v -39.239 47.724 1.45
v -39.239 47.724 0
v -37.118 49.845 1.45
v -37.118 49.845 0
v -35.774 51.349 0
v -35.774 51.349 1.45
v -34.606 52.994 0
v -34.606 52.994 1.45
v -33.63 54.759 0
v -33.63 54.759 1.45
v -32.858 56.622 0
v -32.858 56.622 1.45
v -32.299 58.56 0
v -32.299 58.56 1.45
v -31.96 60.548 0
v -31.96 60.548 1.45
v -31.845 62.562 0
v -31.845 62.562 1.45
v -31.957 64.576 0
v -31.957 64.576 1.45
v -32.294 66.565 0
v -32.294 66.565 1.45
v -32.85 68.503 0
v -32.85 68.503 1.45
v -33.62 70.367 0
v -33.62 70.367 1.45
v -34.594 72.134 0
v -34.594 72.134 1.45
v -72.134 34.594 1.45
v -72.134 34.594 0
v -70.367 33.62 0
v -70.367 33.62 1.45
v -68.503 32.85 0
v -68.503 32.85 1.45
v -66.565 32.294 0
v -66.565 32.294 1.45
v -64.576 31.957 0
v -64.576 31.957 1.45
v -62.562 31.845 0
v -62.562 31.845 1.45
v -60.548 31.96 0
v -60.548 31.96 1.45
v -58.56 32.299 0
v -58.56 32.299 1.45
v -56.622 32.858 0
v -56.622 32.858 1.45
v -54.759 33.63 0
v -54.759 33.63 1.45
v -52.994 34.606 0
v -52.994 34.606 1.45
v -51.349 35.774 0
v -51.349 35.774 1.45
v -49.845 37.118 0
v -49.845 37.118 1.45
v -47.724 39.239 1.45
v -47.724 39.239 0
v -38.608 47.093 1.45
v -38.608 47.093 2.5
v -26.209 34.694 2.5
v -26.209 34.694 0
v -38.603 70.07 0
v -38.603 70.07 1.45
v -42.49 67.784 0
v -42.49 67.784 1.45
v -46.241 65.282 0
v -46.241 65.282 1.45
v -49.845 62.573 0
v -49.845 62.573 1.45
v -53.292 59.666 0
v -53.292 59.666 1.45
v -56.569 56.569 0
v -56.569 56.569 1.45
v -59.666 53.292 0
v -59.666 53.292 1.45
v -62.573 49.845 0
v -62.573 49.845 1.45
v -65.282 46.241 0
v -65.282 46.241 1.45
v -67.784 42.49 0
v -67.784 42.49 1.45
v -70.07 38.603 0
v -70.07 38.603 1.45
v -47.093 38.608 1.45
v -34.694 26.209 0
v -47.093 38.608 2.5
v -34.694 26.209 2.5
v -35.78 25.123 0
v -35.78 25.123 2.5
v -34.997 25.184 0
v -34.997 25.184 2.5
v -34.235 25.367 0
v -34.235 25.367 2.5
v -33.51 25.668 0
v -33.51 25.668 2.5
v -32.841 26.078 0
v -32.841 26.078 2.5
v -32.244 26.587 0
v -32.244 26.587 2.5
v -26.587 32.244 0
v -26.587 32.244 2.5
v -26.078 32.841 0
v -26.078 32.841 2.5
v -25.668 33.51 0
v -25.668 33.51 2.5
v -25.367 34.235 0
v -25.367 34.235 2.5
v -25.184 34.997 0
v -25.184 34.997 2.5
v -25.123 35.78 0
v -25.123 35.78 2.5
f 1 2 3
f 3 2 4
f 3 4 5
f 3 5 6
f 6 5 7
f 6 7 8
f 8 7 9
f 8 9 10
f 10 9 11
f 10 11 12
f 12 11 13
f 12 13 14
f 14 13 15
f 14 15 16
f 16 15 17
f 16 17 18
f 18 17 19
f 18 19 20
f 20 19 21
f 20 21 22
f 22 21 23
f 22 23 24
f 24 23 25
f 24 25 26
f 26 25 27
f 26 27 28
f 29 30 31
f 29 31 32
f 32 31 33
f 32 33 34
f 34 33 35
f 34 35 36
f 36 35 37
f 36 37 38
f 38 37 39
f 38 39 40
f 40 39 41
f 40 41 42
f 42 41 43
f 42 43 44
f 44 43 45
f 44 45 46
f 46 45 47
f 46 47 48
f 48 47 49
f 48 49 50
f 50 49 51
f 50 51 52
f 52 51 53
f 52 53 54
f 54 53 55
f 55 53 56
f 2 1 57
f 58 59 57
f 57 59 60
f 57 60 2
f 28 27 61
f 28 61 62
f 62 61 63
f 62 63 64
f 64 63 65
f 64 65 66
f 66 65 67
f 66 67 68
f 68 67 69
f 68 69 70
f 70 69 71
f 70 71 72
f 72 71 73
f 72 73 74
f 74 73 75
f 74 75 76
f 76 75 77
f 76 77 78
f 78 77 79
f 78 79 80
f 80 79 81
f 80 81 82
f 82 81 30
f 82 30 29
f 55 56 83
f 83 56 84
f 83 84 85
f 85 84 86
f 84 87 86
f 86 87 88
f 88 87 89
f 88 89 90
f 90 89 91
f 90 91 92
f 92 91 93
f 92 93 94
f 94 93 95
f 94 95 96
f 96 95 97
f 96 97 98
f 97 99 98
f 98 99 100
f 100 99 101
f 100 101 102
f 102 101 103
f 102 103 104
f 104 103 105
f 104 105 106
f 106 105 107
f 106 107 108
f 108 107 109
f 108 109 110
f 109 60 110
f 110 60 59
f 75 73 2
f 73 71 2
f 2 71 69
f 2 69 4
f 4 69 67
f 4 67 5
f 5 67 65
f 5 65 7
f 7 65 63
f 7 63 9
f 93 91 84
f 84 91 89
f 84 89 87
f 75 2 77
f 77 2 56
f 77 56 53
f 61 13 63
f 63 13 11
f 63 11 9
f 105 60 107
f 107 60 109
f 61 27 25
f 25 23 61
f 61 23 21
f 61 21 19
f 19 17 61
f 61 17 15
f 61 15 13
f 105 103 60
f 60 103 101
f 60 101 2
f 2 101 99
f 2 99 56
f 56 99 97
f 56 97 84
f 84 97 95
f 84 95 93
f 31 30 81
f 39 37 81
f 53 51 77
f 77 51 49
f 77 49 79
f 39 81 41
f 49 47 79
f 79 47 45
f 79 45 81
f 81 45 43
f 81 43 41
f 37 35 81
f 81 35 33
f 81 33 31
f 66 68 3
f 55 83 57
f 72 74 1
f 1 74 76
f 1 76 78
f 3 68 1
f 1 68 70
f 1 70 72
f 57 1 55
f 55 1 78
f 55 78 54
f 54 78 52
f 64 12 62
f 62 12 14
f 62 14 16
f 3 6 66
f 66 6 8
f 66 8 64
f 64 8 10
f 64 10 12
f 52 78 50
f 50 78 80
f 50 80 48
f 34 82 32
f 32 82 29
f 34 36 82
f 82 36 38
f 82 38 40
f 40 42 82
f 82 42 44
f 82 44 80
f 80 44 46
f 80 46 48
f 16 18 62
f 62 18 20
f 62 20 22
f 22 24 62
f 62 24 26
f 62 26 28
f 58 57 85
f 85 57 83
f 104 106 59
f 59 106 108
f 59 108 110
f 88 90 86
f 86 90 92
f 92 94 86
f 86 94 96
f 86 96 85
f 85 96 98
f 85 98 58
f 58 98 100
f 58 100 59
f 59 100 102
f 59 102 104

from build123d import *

# Parameters (mm, degrees)
BOSS_EXTRUDE2_DEPTH = 5
CUT_EXTRUDE1_START  = 5
SKETCH3_W           = 19.008841094
SKETCH3_H           = 2.1
SKETCH3_W_2         = 12
SKETCH3_W_3         = 1.535533906
SKETCH3_W_4         = 1.464466094
SKETCH3_W_5         = 17.544375
CUT_EXTRUDE1_DEPTH  = 16
CUT_EXTRUDE2_DEPTH  = 52
SKETCH5_W           = 1.05
SKETCH5_H           = 46.149322856
CUT_EXTRUDE3_DEPTH  = 10


with BuildPart() as part:
    # Sketch1 → Boss-Extrude2 (new body)
    with BuildSketch(Plane.XY):
        Polygon((-39.238867065, 47.72414844), (-47.72414844, 39.238867065), (-34.69381669, 26.208535316), (-26.208535316, 34.69381669), align=None)
        with BuildLine():
            ThreePointArc((-49.845468783, 62.573390845), (-56.568542495, 56.568542495), (-62.573390845, 49.845468783))
            Line((-62.573390845, 49.845468783), (-49.845468783, 37.117546722))
            Line((-49.845468783, 37.117546722), (-47.72414844, 39.238867065))
            Line((-47.72414844, 39.238867065), (-39.238867065, 47.72414844))
            Line((-39.238867065, 47.72414844), (-37.117546722, 49.845468783))
            Line((-37.117546722, 49.845468783), (-49.845468783, 62.573390845))
        make_face()
        with BuildLine():
            ThreePointArc((-34.594119865, 72.133534994), (-42.489529555, 67.783772971), (-49.845468783, 62.573390845))
            Line((-49.845468783, 62.573390845), (-37.117546722, 49.845468783))
            ThreePointArc((-37.117546722, 49.845468783), (-31.959737739, 60.548390845), (-34.594119865, 72.133534994))
        make_face()
        with BuildLine():
            ThreePointArc((-62.573390845, 49.845468783), (-67.783772971, 42.489529555), (-72.133534994, 34.594119865))
            ThreePointArc((-72.133534994, 34.594119865), (-60.548390845, 31.959737739), (-49.845468783, 37.117546722))
            Line((-49.845468783, 37.117546722), (-62.573390845, 49.845468783))
        make_face()
        with BuildLine():
            Line((-34.69381669, 26.208535316), (-35.779603128, 25.122748879))
            ThreePointArc((-35.779603128, 25.122748879), (-33.866185966, 25.503351216), (-32.244069222, 26.587214973))
            Line((-32.244069222, 26.587214973), (-26.587214973, 32.244069222))
            ThreePointArc((-26.587214973, 32.244069222), (-25.503351216, 33.866185966), (-25.122748879, 35.779603128))
            Line((-25.122748879, 35.779603128), (-26.208535316, 34.69381669))
            Line((-26.208535316, 34.69381669), (-34.69381669, 26.208535316))
        make_face()
    extrude(amount=BOSS_EXTRUDE2_DEPTH)

    # Sketch3 → Cut-Extrude1 (cut)
    with BuildSketch(Plane(origin=(-57.699913345, 57.699913345, 0), x_dir=(-0.707106781186549, -0.7071067811865461, 0), z_dir=(0.7071067811865461, -0.707106781186549, 0)).offset(CUT_EXTRUDE1_START)):
        with Locations((-17.039954453, -2.5)):
            Rectangle(SKETCH3_W, SKETCH3_H)
        with Locations((0, -2.5)):
            Rectangle(SKETCH3_W_2, SKETCH3_H)
        with Locations((-6.767766953, -2.5)):
            Rectangle(SKETCH3_W_3, SKETCH3_H)
        with Locations((6.767766953, -2.5)):
            Rectangle(SKETCH3_W_3, SKETCH3_H)
        with Locations((8.267766953, -2.5)):
            Rectangle(SKETCH3_W_4, SKETCH3_H)
        with Locations((17.7721875, -2.5)):
            Rectangle(SKETCH3_W_5, SKETCH3_H)
    extrude(amount=CUT_EXTRUDE1_DEPTH, mode=Mode.SUBTRACT)

    # Sketch4 → Cut-Extrude2 (cut)
    with BuildSketch(Plane(origin=(-57.699913345, 57.699913345, 0), x_dir=(-0.707106781186549, -0.7071067811865461, 0), z_dir=(0.7071067811865461, -0.707106781186549, 0))):
        Polygon((-7.535533906, -2.5), (27.054152634, -2.5), (27.054152634, -6.972921607), (-28.074504585, -6.972921607), (-28.074504585, -2.5), align=None)
    extrude(amount=CUT_EXTRUDE2_DEPTH, mode=Mode.SUBTRACT)

    # Sketch5 → Cut-Extrude3 (cut)
    with BuildSketch(Plane(origin=(-54.164379439, 54.164379439, 0), x_dir=(0, 0, -1), z_dir=(0.7071067811865461, -0.7071067811865489, 0))):
        with Locations((-1.975, 0)):
            Rectangle(SKETCH5_W, SKETCH5_H)
    extrude(amount=-CUT_EXTRUDE3_DEPTH, mode=Mode.SUBTRACT)


solid = part.part
